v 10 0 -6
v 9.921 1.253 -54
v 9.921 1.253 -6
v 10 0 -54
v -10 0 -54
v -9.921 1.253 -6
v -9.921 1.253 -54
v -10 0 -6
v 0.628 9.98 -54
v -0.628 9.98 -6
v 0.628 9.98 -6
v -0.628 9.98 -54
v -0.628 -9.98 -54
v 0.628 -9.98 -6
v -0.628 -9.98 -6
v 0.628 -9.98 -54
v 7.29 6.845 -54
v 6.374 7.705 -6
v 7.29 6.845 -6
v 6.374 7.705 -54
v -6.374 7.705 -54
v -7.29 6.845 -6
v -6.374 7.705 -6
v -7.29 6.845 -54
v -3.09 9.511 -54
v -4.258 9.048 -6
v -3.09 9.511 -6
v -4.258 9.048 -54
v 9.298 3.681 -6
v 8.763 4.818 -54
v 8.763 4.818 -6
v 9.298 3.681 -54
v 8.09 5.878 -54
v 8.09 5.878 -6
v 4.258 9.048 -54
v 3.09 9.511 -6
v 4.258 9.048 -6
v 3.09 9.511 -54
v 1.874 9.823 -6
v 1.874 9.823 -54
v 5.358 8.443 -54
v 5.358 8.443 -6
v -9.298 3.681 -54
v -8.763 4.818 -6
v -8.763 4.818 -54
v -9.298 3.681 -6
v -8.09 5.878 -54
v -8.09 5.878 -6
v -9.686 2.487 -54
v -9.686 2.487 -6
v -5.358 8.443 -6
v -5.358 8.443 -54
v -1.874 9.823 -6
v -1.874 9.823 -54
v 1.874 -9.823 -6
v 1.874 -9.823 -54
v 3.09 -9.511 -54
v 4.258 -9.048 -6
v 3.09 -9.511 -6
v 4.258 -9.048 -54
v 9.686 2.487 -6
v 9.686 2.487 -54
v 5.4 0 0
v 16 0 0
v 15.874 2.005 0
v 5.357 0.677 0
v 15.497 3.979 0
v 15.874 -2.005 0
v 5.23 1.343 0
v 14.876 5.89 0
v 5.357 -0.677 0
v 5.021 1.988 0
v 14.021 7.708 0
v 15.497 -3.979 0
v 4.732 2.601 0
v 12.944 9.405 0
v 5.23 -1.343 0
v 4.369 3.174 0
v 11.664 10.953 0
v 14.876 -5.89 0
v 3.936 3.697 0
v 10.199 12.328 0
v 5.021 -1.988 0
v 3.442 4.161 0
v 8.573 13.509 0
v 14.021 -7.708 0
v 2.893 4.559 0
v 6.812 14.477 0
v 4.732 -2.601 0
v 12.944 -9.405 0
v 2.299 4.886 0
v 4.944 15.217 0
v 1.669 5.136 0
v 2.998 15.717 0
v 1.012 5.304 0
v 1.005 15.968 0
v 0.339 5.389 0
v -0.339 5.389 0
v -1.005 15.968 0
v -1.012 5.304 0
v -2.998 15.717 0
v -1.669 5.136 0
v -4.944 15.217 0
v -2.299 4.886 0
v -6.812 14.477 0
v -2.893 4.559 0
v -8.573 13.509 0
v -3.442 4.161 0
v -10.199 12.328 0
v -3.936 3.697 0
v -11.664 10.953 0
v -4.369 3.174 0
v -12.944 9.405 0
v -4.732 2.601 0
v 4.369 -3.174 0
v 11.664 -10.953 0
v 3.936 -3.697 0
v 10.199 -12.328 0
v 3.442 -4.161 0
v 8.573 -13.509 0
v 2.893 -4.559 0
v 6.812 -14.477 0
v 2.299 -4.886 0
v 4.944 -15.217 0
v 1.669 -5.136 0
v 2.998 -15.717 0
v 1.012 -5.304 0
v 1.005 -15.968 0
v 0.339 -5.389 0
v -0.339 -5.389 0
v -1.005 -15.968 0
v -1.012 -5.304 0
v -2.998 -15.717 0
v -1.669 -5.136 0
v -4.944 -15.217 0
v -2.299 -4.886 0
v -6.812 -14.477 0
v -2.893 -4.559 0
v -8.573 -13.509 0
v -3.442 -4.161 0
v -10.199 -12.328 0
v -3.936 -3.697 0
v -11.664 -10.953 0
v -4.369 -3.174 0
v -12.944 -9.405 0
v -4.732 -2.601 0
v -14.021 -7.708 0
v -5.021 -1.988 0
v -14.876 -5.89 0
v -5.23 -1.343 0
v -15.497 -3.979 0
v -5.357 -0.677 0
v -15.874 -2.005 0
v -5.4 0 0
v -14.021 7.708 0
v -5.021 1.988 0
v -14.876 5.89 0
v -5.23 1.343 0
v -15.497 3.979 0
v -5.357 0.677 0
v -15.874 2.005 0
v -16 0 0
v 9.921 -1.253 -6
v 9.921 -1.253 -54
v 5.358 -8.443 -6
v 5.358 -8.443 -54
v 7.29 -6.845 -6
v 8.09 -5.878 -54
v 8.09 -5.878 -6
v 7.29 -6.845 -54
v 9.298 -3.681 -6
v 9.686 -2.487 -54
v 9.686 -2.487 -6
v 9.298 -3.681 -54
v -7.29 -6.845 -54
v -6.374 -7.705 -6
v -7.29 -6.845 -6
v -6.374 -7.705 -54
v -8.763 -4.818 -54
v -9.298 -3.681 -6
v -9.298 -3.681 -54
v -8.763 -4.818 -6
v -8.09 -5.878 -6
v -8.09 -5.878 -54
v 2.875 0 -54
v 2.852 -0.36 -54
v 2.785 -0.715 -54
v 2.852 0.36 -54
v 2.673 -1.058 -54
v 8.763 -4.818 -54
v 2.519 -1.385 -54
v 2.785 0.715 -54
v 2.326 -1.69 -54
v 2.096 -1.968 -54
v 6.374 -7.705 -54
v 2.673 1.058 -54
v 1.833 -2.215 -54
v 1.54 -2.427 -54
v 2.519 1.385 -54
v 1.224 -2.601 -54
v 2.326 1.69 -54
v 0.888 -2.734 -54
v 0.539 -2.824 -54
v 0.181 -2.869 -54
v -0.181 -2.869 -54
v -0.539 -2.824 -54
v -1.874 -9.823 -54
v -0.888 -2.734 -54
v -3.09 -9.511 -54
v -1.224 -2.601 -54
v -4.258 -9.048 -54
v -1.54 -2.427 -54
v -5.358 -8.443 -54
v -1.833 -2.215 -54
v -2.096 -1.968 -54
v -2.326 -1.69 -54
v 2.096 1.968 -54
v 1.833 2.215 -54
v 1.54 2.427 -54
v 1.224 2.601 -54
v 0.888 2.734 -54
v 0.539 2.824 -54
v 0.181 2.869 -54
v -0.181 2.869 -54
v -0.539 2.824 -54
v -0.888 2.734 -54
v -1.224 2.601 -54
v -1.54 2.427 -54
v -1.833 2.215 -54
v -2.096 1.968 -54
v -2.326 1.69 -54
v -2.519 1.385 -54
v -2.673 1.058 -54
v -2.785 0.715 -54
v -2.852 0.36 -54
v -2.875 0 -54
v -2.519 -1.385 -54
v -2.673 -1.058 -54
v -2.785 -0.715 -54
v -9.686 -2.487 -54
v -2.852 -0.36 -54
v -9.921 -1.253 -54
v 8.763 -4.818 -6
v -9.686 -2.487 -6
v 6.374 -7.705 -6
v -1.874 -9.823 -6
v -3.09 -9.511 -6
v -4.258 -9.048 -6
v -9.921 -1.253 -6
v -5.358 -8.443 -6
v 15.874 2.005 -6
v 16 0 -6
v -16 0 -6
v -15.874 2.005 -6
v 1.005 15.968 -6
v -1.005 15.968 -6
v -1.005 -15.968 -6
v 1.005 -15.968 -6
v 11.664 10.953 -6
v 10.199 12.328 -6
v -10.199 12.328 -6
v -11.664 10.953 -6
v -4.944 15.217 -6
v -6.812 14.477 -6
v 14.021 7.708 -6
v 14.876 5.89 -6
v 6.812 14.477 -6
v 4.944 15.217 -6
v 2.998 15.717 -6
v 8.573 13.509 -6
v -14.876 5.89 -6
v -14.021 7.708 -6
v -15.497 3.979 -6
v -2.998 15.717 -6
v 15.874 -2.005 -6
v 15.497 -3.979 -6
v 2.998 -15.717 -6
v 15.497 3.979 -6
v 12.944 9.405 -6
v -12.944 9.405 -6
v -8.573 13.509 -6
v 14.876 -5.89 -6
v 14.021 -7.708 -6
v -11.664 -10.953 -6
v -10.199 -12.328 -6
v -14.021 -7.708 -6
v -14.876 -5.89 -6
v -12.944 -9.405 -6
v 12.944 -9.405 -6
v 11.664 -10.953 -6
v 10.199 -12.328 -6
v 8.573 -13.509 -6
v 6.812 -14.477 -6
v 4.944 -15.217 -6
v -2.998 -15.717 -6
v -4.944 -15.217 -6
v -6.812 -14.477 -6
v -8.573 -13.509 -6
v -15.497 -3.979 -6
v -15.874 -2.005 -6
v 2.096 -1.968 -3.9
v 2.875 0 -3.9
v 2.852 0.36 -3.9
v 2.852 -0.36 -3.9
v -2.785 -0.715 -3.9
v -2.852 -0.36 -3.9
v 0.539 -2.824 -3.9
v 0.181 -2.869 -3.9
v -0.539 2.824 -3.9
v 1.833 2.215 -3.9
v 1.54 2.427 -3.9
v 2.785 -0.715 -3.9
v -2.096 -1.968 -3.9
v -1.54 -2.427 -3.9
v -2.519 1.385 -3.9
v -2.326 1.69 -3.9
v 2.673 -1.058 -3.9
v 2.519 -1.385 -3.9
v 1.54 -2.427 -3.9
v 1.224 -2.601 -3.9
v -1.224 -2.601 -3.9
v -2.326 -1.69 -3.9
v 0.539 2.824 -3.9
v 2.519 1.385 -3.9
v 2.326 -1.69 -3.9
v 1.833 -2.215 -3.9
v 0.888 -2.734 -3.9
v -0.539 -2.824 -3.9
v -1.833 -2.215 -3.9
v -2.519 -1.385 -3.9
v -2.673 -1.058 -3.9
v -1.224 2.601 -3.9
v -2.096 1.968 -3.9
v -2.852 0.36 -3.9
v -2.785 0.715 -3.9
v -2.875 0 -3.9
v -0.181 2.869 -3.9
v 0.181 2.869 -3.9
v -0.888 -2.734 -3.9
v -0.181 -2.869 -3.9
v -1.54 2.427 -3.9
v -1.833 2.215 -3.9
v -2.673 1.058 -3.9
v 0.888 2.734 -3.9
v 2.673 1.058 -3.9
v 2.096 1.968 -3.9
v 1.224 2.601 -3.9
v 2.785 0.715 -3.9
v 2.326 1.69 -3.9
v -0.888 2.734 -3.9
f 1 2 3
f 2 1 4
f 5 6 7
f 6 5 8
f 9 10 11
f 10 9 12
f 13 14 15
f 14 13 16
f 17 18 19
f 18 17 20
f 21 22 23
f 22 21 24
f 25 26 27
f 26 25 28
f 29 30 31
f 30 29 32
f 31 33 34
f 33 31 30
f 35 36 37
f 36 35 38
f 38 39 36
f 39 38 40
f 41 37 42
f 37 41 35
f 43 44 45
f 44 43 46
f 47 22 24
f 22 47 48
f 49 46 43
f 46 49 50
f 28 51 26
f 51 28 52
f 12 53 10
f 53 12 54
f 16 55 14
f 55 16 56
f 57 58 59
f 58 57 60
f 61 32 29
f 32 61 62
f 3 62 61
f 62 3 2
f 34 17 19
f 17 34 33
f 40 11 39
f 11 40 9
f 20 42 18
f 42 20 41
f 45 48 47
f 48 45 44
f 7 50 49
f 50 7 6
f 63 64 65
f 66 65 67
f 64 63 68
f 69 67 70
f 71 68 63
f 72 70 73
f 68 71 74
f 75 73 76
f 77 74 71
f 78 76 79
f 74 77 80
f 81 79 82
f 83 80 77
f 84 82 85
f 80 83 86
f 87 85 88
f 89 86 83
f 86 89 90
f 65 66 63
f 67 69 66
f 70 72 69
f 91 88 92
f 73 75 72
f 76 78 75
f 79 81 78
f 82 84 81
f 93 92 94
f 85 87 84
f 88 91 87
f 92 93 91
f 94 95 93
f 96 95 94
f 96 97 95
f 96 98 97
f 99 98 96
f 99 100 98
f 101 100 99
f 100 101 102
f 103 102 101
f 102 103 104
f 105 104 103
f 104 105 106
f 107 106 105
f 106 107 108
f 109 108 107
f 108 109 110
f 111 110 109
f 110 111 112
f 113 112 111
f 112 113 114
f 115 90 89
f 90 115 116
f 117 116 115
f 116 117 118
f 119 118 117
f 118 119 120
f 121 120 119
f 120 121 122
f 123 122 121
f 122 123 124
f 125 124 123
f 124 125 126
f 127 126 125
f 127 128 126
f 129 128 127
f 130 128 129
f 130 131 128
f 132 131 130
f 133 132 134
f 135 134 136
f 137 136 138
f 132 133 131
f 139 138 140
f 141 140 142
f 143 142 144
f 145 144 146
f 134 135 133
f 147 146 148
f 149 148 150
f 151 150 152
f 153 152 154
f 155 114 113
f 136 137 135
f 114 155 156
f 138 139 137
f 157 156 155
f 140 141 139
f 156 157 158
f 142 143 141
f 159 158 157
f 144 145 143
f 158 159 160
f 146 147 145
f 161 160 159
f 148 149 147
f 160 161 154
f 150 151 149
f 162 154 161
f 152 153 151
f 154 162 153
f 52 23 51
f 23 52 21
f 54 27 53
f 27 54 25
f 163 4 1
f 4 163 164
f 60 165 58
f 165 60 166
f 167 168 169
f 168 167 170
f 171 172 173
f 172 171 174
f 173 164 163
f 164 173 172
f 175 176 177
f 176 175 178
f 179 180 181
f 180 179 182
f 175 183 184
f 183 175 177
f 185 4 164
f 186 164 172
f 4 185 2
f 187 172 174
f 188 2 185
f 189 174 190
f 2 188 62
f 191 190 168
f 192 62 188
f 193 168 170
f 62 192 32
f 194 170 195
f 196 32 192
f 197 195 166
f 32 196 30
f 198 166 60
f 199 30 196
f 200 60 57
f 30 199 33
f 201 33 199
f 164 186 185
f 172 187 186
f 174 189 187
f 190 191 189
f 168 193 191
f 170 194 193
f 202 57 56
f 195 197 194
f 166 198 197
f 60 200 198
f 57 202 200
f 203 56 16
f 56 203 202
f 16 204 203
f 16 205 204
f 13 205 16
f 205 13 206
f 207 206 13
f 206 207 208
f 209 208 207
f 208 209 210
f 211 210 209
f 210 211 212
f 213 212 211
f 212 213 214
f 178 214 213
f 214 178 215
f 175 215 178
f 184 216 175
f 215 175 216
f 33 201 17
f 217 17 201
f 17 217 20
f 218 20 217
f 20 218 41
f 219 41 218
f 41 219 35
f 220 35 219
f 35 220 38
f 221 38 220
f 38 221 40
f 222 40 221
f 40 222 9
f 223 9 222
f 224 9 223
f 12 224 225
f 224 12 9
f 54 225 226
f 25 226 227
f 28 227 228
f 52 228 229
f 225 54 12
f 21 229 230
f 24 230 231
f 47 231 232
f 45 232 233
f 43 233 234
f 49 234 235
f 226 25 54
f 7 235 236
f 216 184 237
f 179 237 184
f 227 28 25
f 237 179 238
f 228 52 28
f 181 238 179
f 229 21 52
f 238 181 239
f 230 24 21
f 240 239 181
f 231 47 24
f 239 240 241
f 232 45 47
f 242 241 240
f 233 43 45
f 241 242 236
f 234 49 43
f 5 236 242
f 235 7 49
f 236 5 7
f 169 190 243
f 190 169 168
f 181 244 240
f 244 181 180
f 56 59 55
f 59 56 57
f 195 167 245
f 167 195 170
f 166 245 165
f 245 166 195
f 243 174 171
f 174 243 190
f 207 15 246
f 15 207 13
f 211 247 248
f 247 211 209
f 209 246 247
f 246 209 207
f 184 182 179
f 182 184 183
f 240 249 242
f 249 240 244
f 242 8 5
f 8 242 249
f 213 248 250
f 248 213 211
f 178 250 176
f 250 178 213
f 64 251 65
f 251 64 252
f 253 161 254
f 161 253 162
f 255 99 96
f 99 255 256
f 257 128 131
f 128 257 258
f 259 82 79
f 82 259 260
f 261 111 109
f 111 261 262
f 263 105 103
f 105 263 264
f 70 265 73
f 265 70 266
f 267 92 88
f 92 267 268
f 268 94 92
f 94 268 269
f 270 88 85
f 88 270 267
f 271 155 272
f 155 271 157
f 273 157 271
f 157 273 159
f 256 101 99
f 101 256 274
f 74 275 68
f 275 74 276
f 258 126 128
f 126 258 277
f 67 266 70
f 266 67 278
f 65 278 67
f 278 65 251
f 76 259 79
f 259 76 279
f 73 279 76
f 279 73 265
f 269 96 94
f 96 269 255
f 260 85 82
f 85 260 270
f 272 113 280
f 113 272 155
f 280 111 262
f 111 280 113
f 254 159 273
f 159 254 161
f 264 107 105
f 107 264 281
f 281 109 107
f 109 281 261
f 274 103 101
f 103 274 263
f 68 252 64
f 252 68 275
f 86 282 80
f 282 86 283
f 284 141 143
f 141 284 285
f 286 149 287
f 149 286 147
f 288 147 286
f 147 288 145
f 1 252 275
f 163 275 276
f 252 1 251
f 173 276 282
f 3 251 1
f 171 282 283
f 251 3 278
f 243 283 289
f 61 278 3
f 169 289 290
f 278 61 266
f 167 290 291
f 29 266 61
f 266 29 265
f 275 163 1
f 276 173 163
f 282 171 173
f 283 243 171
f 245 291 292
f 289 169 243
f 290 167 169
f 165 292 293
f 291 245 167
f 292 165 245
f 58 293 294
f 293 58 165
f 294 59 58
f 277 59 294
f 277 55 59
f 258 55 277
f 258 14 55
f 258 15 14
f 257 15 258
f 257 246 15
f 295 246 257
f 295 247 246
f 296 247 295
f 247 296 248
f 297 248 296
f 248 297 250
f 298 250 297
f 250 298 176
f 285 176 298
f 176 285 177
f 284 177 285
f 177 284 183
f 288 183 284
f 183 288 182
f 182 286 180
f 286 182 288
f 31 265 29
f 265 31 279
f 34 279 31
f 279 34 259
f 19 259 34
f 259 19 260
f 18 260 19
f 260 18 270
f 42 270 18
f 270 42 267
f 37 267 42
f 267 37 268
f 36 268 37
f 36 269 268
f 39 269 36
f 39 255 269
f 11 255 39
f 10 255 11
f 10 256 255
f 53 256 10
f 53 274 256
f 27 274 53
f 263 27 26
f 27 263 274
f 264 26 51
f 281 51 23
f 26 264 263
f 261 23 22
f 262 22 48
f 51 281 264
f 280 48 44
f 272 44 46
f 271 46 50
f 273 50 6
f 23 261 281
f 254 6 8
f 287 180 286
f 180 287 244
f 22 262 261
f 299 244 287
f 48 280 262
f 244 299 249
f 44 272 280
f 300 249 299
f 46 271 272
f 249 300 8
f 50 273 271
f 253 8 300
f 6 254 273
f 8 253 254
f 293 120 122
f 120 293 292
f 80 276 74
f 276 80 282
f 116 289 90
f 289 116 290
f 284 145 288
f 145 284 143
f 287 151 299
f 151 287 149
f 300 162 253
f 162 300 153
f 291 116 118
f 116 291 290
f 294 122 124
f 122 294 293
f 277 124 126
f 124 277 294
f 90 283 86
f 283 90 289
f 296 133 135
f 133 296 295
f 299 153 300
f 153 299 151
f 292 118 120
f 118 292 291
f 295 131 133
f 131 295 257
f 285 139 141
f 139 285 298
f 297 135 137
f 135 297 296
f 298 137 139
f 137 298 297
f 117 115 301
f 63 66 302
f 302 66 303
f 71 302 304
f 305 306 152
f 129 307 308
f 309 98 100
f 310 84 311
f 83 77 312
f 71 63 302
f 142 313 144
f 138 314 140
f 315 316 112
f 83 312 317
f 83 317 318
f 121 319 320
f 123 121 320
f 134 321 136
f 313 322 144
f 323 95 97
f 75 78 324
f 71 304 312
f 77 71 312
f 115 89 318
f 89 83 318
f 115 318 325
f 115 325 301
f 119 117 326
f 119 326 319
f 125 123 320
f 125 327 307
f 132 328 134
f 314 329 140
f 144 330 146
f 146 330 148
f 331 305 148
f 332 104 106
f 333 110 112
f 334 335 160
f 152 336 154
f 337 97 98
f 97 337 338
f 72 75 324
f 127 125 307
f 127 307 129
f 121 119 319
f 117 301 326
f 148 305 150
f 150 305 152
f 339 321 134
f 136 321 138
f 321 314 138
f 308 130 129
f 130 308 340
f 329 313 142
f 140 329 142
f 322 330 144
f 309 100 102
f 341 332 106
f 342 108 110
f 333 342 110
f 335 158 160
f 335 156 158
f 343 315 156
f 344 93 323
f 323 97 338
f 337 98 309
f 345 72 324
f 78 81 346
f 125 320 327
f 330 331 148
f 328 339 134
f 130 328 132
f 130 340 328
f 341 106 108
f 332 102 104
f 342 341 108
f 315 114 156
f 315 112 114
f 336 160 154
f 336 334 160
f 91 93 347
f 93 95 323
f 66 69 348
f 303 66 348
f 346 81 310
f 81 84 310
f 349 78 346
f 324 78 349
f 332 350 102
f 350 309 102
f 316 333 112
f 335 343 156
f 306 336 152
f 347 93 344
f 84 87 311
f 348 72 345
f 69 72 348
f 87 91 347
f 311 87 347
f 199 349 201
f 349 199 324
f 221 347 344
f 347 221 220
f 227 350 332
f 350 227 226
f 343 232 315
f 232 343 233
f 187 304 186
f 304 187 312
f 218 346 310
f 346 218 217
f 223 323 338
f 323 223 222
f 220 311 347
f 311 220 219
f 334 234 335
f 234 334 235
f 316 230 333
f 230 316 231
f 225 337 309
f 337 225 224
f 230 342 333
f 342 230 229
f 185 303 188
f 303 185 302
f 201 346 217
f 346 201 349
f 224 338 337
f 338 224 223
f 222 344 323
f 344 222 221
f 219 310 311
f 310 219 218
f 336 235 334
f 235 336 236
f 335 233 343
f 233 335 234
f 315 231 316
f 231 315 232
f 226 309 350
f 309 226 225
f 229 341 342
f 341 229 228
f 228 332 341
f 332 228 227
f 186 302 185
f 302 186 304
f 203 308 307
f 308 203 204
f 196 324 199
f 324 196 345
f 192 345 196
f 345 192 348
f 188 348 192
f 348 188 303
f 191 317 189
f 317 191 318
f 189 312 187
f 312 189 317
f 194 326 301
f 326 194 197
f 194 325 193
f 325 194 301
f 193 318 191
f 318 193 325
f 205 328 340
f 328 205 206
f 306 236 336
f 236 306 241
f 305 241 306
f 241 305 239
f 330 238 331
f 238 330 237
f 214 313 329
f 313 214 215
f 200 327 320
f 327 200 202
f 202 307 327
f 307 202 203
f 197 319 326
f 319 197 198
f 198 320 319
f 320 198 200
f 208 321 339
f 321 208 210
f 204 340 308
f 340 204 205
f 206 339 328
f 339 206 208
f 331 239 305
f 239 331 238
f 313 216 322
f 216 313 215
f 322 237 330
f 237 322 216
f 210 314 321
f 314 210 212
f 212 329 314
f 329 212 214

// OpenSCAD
$fn = 50;


difference() {
	union() {
		translate(v = [0, 0, -54.0000000000]) {
			cylinder(h = 54, r = 10.0000000000);
		}
		translate(v = [0, 0, -6.0000000000]) {
			cylinder(h = 6, r = 16.0000000000);
		}
	}
	union() {
		translate(v = [0, 0, 0]) {
			rotate(a = [0, 0, 0]) {
				difference() {
					union() {
						#translate(v = [0, 0, -54.0000000000]) {
							cylinder(h = 54, r = 2.6000000000);
						}
						#translate(v = [0, 0, -3.9000000000]) {
							cylinder(h = 3.9000000000, r = 10.0000000000, r1 = 2.8750000000, r2 = 5.4000000000);
						}
						#translate(v = [0, 0, -54.0000000000]) {
							cylinder(h = 54, r = 2.8750000000);
						}
						#translate(v = [0, 0, -54.0000000000]) {
							cylinder(h = 54, r = 2.6000000000);
						}
					}
					union();
				}
			}
		}
	}
}
